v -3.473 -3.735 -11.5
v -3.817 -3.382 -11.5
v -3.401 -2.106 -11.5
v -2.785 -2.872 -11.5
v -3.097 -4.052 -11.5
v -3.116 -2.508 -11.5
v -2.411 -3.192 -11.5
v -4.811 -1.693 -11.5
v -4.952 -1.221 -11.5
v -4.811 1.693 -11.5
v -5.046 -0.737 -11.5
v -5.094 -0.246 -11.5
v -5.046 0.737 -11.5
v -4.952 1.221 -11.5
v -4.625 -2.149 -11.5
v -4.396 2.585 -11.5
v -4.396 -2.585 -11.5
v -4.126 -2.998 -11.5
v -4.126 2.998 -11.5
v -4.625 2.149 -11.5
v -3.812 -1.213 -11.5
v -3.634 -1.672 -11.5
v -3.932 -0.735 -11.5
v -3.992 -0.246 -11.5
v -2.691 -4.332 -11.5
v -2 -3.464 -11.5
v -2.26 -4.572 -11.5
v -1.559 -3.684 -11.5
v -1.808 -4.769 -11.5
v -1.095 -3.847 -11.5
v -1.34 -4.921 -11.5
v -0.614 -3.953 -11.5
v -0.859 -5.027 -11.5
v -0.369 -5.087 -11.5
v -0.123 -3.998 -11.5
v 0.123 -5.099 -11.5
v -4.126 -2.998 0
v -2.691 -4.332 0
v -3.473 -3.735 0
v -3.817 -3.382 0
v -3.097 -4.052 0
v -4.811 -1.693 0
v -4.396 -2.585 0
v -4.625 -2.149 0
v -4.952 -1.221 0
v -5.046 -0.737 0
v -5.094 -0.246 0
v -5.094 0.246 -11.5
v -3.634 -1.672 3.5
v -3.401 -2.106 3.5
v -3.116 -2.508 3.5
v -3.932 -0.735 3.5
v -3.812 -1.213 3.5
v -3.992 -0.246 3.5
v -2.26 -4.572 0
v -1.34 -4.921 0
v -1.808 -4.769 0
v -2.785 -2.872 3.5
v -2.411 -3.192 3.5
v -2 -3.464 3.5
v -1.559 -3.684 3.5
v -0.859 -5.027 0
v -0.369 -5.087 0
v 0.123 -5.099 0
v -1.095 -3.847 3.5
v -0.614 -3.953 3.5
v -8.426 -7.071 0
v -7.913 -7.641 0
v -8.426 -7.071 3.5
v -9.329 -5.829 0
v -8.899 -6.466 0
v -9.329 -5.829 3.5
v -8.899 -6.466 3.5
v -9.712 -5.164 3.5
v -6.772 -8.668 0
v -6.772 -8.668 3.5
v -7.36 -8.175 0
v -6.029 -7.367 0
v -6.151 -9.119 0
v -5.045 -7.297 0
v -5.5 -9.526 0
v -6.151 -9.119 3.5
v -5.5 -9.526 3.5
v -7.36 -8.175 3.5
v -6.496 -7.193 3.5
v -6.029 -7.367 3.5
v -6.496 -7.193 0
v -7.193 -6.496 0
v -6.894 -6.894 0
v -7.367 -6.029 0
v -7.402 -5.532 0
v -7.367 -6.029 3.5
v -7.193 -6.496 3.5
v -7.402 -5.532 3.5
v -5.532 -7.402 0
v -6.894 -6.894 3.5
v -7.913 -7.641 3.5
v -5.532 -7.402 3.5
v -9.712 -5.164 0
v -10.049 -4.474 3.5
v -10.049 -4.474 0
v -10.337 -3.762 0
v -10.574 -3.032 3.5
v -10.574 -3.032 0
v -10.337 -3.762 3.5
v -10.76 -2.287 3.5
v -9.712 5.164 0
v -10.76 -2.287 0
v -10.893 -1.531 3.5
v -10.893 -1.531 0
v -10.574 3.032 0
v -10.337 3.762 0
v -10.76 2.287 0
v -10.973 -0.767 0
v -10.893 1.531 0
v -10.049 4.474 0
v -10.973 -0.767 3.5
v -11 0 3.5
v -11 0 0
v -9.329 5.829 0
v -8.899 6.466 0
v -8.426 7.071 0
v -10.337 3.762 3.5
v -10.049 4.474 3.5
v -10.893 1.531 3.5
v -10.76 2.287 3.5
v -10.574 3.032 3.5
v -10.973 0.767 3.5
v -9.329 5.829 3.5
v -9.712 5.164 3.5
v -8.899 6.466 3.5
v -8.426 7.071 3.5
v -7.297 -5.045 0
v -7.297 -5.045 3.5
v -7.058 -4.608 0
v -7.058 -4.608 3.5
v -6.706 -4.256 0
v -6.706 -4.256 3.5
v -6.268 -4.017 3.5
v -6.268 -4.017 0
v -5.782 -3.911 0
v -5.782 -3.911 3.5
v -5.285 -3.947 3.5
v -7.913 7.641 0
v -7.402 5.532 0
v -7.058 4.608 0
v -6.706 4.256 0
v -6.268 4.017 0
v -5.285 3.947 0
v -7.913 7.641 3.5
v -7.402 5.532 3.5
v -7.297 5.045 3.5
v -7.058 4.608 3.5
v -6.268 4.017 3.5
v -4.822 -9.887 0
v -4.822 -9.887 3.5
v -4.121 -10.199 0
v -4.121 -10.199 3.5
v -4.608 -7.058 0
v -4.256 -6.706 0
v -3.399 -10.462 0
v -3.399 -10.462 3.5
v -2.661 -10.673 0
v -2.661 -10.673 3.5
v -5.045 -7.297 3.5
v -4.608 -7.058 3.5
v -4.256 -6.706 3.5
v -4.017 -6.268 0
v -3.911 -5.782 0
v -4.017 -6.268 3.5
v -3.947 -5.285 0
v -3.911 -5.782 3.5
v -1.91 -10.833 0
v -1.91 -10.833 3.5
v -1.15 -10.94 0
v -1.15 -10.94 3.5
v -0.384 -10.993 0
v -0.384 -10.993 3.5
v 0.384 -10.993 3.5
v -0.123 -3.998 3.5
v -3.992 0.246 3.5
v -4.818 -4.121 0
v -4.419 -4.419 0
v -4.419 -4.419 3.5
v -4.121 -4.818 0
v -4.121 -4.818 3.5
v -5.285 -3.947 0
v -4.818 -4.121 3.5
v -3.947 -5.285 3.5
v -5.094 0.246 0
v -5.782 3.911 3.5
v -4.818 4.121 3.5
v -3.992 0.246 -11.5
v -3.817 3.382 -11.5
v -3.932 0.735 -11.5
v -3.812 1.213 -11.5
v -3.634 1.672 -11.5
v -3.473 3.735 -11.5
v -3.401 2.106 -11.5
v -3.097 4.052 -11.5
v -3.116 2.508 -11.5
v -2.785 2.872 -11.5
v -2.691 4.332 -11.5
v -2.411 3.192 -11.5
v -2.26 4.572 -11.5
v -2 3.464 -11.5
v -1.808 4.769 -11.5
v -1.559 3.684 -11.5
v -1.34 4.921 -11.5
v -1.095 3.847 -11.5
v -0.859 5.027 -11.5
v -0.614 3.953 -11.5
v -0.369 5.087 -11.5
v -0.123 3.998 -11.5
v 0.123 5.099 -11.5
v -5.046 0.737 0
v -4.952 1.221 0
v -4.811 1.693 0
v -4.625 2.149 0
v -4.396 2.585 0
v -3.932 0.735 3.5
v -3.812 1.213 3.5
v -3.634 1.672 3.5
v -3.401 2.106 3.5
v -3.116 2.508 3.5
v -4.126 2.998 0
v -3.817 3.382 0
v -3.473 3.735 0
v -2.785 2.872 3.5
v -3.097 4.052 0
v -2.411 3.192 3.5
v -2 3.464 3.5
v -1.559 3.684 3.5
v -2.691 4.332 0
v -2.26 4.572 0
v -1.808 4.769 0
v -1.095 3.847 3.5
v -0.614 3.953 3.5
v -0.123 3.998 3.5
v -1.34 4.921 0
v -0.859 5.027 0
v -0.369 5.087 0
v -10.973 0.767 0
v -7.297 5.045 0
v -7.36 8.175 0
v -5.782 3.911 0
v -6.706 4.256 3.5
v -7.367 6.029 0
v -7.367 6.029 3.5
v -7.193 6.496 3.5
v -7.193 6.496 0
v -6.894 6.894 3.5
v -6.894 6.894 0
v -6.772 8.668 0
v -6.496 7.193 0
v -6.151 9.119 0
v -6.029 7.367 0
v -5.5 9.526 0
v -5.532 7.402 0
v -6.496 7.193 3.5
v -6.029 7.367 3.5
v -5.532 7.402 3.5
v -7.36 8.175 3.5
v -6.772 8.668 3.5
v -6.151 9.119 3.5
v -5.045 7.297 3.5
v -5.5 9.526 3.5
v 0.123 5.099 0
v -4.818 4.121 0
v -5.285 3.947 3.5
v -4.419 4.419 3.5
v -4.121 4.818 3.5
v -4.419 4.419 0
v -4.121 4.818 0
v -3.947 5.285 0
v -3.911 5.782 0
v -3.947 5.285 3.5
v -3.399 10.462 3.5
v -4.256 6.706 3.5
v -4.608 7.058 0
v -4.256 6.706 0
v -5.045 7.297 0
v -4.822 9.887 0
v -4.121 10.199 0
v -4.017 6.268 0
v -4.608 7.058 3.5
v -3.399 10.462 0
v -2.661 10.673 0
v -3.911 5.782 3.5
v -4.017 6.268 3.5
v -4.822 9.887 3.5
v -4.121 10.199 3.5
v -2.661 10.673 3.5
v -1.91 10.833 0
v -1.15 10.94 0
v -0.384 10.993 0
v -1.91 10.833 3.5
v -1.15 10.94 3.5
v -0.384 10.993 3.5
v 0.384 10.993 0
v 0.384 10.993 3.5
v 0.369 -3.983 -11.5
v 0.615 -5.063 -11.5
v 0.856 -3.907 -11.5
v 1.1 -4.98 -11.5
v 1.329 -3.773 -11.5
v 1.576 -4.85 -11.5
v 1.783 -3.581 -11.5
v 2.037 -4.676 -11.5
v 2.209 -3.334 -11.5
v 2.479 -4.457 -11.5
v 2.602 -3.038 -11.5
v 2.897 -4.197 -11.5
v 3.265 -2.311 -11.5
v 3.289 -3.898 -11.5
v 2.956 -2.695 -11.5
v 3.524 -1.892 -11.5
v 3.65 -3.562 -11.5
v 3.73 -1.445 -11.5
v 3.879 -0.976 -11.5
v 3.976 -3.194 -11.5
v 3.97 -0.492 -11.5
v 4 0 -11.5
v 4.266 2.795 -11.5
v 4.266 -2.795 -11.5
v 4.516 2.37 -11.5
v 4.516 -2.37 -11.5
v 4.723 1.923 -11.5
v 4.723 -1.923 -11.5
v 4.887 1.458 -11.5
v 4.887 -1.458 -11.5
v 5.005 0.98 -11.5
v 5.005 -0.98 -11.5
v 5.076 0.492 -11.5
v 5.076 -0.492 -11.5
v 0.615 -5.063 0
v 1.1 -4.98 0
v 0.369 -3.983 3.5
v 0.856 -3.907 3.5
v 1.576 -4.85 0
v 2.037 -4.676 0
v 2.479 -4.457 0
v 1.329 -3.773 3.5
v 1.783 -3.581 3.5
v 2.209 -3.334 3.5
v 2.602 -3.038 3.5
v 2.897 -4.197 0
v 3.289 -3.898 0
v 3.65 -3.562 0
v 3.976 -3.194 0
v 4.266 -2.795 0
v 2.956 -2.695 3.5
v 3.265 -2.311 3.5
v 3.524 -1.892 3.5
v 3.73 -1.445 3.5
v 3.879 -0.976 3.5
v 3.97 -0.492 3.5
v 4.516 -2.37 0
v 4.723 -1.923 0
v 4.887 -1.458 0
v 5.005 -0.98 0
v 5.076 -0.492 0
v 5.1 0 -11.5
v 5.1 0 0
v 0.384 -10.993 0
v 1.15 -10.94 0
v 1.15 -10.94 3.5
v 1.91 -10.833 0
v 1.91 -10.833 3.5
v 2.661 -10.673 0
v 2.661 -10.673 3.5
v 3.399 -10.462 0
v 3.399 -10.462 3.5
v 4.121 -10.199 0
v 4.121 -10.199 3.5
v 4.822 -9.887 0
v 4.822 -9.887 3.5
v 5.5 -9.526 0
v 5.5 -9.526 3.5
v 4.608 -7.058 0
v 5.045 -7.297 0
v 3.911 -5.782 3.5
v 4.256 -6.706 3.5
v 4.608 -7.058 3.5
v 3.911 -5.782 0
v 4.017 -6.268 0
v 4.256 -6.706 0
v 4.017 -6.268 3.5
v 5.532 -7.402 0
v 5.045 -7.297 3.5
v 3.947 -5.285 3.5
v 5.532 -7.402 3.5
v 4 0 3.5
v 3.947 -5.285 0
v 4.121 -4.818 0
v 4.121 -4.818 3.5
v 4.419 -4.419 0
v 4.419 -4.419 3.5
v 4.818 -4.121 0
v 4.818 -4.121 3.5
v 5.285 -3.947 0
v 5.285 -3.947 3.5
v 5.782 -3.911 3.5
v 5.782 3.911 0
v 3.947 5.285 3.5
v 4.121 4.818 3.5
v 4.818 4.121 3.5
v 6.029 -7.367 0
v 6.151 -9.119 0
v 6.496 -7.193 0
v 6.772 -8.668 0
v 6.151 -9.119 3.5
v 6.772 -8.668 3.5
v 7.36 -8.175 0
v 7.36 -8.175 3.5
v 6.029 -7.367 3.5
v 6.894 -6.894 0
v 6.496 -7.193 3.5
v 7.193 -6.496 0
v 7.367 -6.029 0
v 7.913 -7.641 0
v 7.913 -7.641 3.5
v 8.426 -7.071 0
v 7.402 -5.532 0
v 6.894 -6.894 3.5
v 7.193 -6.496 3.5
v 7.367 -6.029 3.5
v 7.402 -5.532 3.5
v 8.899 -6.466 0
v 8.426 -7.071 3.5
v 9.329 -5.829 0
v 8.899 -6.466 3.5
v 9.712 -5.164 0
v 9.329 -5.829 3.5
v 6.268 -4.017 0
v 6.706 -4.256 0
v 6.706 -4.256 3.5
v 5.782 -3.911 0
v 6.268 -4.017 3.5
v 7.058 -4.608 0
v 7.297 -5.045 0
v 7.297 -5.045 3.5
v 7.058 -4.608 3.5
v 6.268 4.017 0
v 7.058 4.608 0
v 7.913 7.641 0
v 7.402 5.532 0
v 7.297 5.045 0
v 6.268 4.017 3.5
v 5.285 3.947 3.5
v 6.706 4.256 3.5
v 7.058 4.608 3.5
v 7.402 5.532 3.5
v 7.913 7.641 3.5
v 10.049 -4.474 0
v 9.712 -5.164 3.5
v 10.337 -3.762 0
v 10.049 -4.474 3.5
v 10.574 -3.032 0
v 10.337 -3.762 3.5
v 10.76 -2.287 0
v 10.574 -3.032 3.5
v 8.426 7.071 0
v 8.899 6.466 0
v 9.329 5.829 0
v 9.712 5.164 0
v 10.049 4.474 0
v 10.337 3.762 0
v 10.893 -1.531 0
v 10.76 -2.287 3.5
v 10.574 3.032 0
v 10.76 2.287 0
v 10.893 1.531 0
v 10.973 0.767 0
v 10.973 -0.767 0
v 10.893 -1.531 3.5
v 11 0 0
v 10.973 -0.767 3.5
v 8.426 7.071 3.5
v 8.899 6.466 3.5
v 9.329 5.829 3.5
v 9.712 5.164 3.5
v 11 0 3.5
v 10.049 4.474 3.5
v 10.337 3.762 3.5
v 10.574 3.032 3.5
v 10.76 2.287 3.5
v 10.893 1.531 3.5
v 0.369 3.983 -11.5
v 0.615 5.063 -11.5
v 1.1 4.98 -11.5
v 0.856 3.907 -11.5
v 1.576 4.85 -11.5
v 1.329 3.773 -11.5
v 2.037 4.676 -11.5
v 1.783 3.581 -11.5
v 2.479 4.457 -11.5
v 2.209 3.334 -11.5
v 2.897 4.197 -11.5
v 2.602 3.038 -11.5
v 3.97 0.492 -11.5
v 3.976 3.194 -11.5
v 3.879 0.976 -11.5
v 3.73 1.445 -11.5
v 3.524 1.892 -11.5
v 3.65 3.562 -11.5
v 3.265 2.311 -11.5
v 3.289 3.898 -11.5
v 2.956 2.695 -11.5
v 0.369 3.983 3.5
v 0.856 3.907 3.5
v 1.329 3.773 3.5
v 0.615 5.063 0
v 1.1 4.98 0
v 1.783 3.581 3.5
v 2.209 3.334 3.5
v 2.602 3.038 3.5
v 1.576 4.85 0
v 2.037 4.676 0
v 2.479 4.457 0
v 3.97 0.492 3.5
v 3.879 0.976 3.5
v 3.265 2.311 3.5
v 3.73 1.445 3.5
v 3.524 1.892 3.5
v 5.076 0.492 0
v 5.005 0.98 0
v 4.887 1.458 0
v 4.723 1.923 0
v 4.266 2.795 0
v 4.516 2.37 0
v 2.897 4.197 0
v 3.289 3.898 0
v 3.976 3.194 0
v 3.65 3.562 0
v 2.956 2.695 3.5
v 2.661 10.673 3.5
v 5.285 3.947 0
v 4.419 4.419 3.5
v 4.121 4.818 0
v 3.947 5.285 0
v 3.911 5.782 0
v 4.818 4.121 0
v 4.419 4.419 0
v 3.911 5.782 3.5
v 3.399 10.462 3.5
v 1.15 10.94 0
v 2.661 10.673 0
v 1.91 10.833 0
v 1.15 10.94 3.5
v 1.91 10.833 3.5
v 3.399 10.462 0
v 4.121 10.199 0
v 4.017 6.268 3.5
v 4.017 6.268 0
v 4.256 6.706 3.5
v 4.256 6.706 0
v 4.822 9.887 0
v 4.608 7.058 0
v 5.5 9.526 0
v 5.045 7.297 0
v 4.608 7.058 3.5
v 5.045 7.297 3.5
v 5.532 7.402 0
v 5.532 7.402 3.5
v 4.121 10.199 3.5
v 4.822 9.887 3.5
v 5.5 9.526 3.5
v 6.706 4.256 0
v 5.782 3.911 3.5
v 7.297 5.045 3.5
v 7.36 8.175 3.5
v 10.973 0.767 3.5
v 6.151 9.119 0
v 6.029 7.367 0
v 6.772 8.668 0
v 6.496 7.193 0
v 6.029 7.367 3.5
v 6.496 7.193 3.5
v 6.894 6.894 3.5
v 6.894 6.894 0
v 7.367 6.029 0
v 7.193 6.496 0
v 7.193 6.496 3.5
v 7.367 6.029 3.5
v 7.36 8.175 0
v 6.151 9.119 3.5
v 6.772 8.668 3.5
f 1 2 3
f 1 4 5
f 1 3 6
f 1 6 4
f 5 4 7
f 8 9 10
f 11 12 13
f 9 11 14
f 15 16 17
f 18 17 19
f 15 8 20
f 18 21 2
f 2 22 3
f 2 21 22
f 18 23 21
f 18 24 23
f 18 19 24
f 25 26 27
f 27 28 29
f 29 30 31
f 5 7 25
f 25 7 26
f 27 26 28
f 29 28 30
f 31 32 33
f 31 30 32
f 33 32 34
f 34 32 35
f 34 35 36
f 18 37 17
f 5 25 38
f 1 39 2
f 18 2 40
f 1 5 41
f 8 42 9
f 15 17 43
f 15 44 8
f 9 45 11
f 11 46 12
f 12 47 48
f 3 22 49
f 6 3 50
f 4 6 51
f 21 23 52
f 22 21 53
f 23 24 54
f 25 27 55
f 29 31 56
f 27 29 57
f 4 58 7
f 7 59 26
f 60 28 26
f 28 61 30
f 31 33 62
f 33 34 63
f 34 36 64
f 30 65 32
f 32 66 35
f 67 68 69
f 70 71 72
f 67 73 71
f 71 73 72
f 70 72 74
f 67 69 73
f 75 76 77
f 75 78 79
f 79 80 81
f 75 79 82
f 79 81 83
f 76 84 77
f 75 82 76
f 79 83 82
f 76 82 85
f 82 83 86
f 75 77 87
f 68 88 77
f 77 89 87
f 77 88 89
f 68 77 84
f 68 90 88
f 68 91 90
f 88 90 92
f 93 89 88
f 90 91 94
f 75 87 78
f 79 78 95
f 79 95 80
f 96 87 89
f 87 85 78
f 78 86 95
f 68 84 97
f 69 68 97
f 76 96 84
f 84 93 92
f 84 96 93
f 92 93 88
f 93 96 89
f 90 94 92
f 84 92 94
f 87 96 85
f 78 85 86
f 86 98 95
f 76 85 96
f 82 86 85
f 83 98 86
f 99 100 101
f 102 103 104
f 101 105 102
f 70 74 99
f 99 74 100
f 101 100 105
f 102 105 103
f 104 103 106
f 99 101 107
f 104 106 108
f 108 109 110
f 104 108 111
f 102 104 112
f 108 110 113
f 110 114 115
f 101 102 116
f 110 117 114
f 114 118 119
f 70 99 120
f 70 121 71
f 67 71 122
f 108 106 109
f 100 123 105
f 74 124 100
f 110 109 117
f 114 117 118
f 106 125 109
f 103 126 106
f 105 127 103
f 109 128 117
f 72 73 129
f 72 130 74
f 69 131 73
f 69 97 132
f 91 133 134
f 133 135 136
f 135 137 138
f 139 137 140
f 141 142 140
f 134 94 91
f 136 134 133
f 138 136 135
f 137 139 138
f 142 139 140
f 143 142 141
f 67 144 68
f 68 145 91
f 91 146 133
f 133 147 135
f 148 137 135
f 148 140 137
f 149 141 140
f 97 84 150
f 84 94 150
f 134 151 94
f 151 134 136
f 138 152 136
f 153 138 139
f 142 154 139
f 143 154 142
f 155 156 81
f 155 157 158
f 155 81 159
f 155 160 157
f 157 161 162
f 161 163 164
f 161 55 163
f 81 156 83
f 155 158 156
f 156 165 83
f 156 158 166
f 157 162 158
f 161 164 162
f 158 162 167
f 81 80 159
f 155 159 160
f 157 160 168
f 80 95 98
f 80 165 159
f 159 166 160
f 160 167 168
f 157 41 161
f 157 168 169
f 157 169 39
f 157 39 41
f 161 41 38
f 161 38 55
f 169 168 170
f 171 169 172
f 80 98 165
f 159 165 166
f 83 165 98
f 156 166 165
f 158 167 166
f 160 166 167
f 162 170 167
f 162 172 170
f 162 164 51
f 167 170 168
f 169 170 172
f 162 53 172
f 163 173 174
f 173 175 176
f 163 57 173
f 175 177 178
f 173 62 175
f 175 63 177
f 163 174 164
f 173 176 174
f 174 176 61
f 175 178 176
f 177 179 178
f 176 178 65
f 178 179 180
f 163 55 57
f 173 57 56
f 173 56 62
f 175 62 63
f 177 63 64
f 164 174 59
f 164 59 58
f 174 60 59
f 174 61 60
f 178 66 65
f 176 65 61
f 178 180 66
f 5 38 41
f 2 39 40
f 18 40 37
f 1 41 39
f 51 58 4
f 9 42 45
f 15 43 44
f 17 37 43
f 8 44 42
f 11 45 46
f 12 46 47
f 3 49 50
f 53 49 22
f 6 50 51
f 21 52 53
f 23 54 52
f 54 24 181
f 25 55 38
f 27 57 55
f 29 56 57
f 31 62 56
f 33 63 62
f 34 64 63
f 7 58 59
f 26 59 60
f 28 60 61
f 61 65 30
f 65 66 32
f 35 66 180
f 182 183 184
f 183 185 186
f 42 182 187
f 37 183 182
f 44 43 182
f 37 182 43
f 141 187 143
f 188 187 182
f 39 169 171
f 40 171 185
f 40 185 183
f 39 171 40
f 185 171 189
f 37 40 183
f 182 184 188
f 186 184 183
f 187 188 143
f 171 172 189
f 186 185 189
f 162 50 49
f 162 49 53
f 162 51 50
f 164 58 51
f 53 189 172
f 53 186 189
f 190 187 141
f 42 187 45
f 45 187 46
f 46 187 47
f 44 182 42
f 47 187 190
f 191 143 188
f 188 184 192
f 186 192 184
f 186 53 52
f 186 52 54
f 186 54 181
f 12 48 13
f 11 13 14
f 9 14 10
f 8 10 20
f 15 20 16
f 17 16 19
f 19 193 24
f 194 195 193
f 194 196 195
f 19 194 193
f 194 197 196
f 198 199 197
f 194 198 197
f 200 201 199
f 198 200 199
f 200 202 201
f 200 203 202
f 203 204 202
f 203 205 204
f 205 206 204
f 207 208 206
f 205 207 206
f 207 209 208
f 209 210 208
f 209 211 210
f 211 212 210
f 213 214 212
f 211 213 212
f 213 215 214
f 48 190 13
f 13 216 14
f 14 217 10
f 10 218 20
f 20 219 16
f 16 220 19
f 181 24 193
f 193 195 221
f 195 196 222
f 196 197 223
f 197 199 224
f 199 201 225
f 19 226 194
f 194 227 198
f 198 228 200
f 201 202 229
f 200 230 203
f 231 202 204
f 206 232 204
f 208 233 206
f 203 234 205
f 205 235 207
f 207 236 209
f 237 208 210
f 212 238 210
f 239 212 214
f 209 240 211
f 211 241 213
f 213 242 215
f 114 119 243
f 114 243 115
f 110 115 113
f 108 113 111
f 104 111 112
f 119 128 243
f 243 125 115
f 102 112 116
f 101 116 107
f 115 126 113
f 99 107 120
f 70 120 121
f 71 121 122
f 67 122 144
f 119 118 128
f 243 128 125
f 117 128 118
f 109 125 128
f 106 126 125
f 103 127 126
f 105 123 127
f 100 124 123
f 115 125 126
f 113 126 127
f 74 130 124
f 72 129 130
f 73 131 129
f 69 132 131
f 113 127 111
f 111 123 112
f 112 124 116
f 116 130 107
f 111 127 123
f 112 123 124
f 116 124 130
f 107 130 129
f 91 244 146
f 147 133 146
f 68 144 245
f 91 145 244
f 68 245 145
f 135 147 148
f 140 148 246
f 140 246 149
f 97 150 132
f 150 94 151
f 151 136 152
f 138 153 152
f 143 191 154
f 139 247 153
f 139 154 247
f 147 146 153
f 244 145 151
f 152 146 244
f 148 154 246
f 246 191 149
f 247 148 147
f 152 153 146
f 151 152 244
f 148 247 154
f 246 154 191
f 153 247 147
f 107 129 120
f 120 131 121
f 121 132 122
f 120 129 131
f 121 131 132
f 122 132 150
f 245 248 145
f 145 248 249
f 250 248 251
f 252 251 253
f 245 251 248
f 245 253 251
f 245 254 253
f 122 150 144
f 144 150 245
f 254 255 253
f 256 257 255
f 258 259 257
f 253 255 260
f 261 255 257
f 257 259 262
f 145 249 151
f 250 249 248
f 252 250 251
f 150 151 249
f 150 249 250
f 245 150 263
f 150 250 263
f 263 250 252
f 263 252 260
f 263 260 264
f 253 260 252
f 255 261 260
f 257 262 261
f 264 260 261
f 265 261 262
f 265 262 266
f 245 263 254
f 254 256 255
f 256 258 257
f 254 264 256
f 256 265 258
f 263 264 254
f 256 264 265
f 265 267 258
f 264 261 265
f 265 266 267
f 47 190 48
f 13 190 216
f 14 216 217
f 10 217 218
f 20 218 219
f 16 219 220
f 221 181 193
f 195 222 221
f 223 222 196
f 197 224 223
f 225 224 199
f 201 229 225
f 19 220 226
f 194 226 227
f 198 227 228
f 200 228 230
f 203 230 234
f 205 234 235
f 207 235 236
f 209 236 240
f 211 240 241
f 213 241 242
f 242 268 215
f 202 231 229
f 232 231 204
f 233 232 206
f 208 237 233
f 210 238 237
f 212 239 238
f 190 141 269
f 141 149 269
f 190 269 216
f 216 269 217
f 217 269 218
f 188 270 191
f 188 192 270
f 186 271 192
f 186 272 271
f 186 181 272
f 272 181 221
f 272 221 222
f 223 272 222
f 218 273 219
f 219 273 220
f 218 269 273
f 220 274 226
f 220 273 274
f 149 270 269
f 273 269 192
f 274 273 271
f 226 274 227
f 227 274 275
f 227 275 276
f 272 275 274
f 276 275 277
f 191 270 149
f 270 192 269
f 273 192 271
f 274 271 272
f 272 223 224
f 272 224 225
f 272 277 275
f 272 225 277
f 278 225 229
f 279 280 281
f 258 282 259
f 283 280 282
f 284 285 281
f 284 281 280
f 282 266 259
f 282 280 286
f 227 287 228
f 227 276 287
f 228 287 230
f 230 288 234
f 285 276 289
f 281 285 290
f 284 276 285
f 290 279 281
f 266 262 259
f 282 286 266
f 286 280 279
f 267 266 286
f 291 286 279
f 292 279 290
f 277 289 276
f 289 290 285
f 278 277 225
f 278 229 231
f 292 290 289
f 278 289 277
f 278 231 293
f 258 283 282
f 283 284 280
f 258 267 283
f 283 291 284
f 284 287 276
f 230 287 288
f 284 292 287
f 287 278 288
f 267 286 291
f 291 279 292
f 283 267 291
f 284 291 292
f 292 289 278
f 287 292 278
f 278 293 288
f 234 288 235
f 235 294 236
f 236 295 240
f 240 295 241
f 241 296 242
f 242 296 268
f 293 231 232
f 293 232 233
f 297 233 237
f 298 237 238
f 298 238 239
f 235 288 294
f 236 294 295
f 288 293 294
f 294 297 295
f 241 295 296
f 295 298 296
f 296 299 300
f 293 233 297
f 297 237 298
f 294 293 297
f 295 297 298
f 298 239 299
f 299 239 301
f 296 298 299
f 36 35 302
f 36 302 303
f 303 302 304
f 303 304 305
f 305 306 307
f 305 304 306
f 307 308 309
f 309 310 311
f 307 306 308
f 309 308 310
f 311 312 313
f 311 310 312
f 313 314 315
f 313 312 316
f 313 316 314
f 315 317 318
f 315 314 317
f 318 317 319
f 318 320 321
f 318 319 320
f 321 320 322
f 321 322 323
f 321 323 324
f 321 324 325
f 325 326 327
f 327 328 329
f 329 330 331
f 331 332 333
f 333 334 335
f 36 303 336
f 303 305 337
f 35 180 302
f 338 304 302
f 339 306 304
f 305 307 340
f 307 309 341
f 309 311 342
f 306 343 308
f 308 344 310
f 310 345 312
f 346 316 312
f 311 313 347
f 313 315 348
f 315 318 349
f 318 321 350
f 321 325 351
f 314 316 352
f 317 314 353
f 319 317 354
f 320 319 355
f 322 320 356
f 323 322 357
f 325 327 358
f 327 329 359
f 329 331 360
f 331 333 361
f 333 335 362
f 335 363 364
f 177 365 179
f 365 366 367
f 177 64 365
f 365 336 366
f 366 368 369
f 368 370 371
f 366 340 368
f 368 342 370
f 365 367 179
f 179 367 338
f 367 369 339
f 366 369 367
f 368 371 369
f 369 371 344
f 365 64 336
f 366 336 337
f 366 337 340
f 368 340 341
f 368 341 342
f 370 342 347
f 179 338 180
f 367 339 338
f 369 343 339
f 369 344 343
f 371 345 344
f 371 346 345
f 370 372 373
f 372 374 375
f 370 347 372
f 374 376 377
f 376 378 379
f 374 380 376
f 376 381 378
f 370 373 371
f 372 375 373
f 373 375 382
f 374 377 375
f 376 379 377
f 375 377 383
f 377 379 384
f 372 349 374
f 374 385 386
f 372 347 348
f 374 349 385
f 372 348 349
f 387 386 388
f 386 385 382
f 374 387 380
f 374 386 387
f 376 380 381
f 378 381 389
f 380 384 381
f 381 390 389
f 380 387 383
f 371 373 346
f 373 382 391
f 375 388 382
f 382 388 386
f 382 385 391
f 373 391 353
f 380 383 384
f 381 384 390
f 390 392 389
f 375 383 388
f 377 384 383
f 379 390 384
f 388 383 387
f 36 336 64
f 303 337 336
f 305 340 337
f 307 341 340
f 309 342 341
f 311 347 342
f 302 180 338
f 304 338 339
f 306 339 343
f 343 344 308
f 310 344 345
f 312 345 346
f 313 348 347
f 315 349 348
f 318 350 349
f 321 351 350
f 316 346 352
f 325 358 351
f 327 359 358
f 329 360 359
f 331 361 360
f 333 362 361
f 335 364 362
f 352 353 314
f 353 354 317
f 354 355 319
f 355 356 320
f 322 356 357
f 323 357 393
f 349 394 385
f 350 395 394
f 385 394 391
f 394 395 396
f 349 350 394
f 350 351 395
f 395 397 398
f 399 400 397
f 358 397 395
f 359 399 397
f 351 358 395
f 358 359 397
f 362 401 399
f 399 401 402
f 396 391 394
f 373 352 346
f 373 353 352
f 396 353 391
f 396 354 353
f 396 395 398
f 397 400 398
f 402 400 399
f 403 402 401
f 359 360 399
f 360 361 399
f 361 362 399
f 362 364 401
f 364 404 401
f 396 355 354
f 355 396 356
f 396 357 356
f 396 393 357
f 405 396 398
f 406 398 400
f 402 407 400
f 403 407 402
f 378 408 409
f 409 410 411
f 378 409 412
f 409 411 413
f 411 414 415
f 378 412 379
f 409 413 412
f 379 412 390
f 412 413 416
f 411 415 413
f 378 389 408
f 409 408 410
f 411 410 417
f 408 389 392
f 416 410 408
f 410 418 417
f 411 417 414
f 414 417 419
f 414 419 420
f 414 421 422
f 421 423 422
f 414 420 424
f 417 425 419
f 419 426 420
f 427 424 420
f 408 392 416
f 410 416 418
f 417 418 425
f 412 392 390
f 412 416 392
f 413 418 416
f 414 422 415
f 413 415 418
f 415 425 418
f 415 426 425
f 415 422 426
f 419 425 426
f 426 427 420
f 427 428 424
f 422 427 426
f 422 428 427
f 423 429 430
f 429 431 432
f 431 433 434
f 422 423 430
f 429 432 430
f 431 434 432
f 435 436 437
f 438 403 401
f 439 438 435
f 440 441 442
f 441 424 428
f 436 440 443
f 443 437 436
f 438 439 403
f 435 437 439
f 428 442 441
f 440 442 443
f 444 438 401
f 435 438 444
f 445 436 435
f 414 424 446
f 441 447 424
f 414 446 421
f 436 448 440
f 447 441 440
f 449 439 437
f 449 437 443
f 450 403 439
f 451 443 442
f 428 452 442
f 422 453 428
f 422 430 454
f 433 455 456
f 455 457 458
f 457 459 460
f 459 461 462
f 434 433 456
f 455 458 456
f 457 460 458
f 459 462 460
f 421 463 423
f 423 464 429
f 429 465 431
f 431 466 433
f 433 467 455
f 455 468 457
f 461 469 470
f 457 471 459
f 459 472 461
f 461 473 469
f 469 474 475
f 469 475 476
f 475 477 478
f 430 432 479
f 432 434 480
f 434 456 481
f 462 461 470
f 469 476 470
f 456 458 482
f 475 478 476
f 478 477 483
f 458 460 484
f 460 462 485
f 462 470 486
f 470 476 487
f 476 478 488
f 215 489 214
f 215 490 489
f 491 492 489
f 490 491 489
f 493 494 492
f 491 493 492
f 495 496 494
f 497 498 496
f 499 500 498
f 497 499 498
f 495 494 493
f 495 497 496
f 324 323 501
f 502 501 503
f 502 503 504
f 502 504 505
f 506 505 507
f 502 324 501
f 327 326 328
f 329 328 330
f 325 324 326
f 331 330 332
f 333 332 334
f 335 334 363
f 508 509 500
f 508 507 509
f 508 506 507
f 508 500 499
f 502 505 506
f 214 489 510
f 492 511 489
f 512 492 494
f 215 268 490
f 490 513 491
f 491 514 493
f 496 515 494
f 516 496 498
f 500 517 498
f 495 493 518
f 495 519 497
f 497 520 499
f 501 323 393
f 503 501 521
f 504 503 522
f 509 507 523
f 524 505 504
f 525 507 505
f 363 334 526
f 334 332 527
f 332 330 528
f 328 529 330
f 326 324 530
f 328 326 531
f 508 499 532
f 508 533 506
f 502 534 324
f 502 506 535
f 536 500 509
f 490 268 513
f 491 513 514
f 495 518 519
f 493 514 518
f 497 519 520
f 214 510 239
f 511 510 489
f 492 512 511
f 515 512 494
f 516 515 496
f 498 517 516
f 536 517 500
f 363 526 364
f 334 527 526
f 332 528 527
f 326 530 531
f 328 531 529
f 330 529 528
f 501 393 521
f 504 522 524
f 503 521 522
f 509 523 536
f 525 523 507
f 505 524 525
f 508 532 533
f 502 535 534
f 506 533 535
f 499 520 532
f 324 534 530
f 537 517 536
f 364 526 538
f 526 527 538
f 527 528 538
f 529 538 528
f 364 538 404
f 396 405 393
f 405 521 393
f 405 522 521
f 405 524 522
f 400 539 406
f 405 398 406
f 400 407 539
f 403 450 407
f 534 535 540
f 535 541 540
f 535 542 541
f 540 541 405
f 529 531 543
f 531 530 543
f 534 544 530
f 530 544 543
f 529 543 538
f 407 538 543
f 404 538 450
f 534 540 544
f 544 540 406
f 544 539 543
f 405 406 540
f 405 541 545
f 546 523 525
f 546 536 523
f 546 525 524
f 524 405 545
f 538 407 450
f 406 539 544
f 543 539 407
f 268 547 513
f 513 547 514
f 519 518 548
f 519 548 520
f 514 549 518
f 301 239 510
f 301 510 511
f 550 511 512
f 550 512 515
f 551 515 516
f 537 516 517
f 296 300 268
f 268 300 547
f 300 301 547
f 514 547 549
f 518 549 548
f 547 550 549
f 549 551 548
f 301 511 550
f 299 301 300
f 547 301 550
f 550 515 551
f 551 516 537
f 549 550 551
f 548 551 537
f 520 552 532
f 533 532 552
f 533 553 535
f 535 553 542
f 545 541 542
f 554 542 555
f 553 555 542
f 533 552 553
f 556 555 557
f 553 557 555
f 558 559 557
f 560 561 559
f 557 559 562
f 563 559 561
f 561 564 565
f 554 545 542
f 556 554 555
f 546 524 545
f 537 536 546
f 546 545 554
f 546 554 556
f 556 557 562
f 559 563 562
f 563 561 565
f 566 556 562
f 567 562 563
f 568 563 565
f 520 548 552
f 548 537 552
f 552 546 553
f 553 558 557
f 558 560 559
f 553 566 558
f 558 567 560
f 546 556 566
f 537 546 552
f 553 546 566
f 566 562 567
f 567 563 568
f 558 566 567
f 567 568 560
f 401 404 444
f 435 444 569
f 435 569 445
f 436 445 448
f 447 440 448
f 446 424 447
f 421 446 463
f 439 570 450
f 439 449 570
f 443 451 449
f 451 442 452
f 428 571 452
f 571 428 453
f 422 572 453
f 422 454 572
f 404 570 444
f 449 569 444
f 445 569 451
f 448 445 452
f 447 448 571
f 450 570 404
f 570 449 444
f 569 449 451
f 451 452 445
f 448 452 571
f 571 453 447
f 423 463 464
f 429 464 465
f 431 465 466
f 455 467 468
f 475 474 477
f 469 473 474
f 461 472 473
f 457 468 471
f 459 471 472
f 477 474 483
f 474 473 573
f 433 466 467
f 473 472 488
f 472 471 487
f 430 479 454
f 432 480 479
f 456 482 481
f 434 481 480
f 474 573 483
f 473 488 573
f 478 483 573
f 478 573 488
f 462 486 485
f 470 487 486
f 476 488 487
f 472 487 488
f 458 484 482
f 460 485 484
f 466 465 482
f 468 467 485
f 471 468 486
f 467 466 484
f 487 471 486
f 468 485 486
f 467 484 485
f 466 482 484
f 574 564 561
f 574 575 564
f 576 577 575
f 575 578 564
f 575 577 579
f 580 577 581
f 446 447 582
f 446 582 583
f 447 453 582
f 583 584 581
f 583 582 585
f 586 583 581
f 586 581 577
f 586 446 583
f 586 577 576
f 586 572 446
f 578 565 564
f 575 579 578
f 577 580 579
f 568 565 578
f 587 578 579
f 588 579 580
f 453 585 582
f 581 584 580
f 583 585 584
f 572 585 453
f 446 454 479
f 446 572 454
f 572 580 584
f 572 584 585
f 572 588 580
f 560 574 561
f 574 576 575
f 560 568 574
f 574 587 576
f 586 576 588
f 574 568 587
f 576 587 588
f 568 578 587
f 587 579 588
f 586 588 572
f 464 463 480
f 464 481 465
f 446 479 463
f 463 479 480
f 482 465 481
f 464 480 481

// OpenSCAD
// file: ../lib/lib.scad
// Shared helpers. Include AFTER params.scad (needs TOL, M3_* etc.).
$fa = 4; $fs = 0.5;

module rrect(size, r) {            // 2D rounded rectangle, centred
    r2 = min(r, min(size[0], size[1]) / 2 - 0.001);
    offset(r = r2) square([size[0] - 2 * r2, size[1] - 2 * r2], center = true);
}
module rbox(size, r, center_xy = true) {   // box with rounded vertical edges
    translate(center_xy ? [0, 0, 0] : [size[0] / 2, size[1] / 2, 0])
        linear_extrude(size[2]) rrect([size[0], size[1]], r);
}
module rbox_at(x0, x1, y0, y1, z0, z1, r = 0.01) {
    translate([(x0 + x1) / 2, (y0 + y1) / 2, z0]) rbox([x1 - x0, y1 - y0, z1 - z0], r);
}
module box_at(x0, x1, y0, y1, z0, z1) { translate([x0, y0, z0]) cube([x1 - x0, y1 - y0, z1 - z0]); }

module ring(ro, ri, h) { difference() { cylinder(r = ro, h = h); translate([0, 0, -1]) cylinder(r = ri, h = h + 2); } }
module ring_sector(ro, ri, h, a0, a1) {
    intersection() {
        ring(ro, ri, h);
        linear_extrude(h) polygon(concat([[0, 0]], [for (a = [a0 : (a1 - a0) / 24 : a1]) 2 * ro * [cos(a), sin(a)]]));
    }
}
// teardrop hole along an axis lying horizontal (axis = Y after rotation), printable w/o support
module teardrop2d(d) { union() { circle(d = d); rotate(45) square(d / 2); } }
// vertical heat-set insert hole, opening at z=0 going +z (depth l)
module insert_hole(l = M3_INSERT_L) { translate([0, 0, -EPS]) cylinder(d = M3_INSERT_D, h = l + EPS); }
module m3_clear(l) { translate([0, 0, -EPS]) cylinder(d = M3_CLEAR, h = l + 2 * EPS); }
module m3_csk(l) {  // countersunk clearance from z=0 upward, head at z=0 side
    translate([0, 0, -EPS]) { cylinder(d = M3_CLEAR, h = l + 2 * EPS); cylinder(d1 = 6.4, d2 = M3_CLEAR, h = 1.7); }
}
module card2d() { rrect([CARD_L, CARD_W], CARD_R); }
module card_at(cy, z) { translate([0, cy, z]) linear_extrude(CARD_T) card2d(); }

// ---- gears ----
function _inv(a) = tan(a) - a * PI_ / 180;           // involute function, a in deg
function _invpt(rb, r, ang0, s) = let(al = acos(rb / r), th = ang0 - s * (_inv(al) * 180 / PI_)) [r * cos(th), r * sin(th)];
module involute_gear2d(m, z, pa = 20, clearance = 0.05) {
    rp = m * z / 2; rb = rp * cos(pa); ra = rp + m - clearance; rf = rp - 1.25 * m;
    half = 90 / z + _inv(pa) * 180 / PI_;            // tooth half-angle at base (deg)
    n = 8;
    rs = [for (i = [0 : n]) max(rb, rf) + (ra - max(rb, rf)) * i / n];
    union() {
        circle(r = rf, $fn = z * 4);
        for (k = [0 : z - 1]) rotate(k * 360 / z) polygon(concat(
            [[rf * cos(-half), rf * sin(-half)]],
            [for (r = rs) let(p = _invpt(rb, r, half, 1)) [p[0], -p[1]]],
            [for (i = [n : -1 : 0]) _invpt(rb, rs[i], half, 1)],
            [[rf * cos(half), rf * sin(half)]]));
    }
}
// straight gear rack (2D in XY: teeth along +x, pointing -y, pitch line at y=0)
module gear_rack2d(m, len, back = 3) {
    p = PI_ * m; ad = m; de = 1.25 * m; t = tan(20);
    n = ceil(len / p) + 1;
    intersection() {
        union() {
            translate([0, de]) square([len, back]);
            for (i = [0 : n]) translate([i * p - p / 4, 0]) polygon([
                [-(p / 4 + de * t), de + 0.01], [p / 4 + de * t + 0.01, de + 0.01],
                [p / 4 - ad * t, -ad], [-(p / 4 - ad * t), -ad] ]);
        }
        translate([0, -ad - 1]) square([len, ad + de + back + 2]);
    }
}
// GT2 belt-tooth profile ring (teeth outward), 2D
module gt2_ring2d(n, r_land, ri) {
    union() {
        difference() { circle(r = r_land + 0.01, $fn = n * 2); circle(r = ri, $fn = n * 2); }
        for (k = [0 : n - 1]) rotate(k * 360 / n)
            translate([r_land, 0]) hull() { translate([-0.2, 0]) square([0.2, 1.0], center = true); translate([0.25, 0]) circle(r = 0.5, $fn = 12); }
    }
}
// main file
// Vendor model: Brass T8 flange nut (flange 22x3.5, body 10.2, L15). Local: flange z 0..3.5, body hangs below.
include <../params.scad>
include <../lib/lib.scad>
module vendor_t8_nut() color([0.85,0.65,0.25]) difference() {
    union() { cylinder(d = NUT_FL_D, h = NUT_FL_T); translate([0, 0, NUT_FL_T - NUT_L]) cylinder(d = NUT_BODY_D, h = NUT_L); }
    translate([0, 0, -20]) cylinder(d = LEAD_D, h = 40);   // nominal: thread modelled as a plain bore
    for (a = [45 : 90 : 360]) rotate(a) translate([NUT_PCD / 2, 0, -1]) cylinder(d = 3.5, h = 6);
}

vendor_t8_nut();
